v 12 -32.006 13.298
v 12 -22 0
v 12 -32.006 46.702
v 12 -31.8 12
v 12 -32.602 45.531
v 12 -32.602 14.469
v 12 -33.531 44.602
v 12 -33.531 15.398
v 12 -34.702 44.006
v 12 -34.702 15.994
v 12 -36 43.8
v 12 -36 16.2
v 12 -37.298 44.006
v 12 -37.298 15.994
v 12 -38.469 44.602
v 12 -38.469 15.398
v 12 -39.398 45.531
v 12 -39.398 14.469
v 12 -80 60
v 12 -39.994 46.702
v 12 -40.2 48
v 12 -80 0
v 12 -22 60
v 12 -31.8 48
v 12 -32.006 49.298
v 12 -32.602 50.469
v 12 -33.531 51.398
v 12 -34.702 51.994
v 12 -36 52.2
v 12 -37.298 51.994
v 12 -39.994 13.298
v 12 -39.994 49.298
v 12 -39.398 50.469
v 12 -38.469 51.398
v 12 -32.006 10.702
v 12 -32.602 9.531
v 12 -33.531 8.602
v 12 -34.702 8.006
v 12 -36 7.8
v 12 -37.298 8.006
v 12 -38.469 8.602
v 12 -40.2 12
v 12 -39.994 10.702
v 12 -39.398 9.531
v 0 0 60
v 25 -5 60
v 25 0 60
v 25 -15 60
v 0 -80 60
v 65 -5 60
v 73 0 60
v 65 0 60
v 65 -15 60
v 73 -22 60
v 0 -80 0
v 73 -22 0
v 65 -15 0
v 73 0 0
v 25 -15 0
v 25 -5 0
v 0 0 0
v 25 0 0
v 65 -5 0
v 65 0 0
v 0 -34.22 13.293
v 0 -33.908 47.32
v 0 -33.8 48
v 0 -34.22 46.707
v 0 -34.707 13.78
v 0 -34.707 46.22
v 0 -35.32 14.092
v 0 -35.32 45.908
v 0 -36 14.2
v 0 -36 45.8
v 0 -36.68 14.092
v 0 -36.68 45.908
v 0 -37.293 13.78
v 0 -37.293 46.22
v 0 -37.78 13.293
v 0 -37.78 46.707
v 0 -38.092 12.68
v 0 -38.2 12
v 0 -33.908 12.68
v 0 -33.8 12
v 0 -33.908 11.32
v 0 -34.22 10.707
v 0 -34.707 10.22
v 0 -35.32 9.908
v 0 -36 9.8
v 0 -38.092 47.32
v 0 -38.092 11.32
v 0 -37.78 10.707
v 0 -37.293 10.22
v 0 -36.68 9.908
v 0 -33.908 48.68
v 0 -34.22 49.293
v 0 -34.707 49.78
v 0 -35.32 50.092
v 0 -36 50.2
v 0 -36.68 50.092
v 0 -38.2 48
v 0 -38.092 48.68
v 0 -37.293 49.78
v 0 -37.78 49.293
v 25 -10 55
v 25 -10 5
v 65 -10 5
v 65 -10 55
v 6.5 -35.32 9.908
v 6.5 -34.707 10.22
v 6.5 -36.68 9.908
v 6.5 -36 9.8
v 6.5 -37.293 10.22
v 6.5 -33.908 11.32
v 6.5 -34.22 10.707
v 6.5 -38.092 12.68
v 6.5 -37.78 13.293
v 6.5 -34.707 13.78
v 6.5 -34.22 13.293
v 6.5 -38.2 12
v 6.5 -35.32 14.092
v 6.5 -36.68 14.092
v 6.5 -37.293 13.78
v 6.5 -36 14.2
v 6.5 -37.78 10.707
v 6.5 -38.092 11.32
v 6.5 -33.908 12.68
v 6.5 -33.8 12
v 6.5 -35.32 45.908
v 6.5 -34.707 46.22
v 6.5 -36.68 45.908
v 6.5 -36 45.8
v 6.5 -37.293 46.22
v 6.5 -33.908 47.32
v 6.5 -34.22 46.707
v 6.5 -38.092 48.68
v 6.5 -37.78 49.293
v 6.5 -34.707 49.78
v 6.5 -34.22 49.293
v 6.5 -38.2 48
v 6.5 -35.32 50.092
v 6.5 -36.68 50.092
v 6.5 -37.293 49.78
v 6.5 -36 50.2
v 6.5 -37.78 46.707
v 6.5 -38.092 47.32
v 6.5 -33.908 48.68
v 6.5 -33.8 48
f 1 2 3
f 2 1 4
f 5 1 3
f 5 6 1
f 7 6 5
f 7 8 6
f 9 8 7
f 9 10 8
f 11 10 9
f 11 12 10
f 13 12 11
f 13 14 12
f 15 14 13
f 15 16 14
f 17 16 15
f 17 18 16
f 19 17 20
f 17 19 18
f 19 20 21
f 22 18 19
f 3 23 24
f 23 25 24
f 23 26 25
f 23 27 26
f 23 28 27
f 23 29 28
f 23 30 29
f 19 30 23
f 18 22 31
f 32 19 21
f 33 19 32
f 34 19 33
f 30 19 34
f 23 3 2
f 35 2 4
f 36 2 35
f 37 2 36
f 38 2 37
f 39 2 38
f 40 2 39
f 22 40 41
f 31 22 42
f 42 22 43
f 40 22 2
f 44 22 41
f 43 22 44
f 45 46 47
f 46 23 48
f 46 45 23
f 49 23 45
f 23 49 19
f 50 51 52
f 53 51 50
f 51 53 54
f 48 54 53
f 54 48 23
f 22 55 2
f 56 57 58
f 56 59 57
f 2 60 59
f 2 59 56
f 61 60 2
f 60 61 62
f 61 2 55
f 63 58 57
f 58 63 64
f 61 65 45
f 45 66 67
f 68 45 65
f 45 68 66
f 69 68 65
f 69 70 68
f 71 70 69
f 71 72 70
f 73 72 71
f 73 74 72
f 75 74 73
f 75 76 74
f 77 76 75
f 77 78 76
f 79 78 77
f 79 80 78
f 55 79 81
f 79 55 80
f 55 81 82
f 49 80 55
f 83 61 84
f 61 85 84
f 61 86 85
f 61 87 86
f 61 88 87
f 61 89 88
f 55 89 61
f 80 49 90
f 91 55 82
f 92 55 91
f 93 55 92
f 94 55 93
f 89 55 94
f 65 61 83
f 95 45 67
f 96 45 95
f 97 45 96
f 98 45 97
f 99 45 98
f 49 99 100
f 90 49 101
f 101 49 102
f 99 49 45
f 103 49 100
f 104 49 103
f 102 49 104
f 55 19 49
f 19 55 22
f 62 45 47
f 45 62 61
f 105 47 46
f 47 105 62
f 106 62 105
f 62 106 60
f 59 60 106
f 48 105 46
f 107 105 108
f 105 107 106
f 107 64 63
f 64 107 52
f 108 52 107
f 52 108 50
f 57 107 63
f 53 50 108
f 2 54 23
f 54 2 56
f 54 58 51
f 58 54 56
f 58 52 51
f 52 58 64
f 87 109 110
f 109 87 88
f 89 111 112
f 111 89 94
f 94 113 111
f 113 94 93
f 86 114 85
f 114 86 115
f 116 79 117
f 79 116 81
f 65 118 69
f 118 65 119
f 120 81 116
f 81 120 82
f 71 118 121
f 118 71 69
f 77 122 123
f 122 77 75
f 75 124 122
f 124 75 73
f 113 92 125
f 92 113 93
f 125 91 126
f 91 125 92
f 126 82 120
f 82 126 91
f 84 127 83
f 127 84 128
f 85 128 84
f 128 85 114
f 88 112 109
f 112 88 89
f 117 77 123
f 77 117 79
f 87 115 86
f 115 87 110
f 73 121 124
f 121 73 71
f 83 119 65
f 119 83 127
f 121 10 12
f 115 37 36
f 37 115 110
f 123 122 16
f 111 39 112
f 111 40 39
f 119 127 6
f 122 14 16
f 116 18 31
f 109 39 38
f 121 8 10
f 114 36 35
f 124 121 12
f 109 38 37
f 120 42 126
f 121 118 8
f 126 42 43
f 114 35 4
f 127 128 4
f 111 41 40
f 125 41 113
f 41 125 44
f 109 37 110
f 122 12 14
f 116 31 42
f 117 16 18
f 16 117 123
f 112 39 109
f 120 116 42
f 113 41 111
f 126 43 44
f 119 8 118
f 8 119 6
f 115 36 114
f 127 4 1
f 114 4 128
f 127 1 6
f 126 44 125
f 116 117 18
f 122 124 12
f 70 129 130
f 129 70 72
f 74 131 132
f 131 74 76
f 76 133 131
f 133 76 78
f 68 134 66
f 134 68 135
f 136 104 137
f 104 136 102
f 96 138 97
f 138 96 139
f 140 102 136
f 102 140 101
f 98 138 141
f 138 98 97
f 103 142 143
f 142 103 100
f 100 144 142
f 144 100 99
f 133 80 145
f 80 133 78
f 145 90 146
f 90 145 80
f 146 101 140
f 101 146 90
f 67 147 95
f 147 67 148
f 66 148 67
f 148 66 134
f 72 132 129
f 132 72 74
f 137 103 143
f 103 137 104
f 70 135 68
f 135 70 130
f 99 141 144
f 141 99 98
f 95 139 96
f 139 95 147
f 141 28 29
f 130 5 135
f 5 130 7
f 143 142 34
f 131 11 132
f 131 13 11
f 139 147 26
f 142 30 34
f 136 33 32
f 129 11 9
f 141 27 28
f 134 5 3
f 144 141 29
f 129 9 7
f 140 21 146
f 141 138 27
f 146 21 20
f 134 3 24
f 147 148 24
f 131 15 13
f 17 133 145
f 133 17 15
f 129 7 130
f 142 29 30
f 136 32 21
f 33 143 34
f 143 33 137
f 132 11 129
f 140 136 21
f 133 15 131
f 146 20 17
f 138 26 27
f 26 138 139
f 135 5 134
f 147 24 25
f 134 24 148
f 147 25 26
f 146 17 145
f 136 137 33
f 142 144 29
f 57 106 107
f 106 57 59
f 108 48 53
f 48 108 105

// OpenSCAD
ox = 25; // offset x dimension
px = 12; // mounting plate x dimension

sx = 40; // slot x
sb = 8; // slot blocker
sy = 12; //  slot y
soy = 10; // slot offset y


py = 80; // mounting plate y dimension

hz = 60; // height (z dimension)


module screw_hole(dl, ds, h) {
    // dl, ds: diameter large, small
    // h: diameter transition height
    large = 100;
    cylinder(h=large, d=dl, $fn=20);
    
    mirror([0,0,1]) union() {
        cylinder(h=large, d=ds, $fn=20);
        cylinder(h=h, d1=dl, d2=ds, $fn=20);
    }
}

module screw() {
    rotate([0,90,0]) screw_hole(h=5.5, ds=4.4, dl=8.4);
}

module fillet() {
    translate([ox,soy]) scale([1,5,5]) rotate([0,90,0]) cylinder(h=sx,r=1,$fn=4);
}

mirror([0,1,0]) difference() {
    union() {
        cube([px,py,hz]);
        translate([0,0,0]) cube([ox, soy, hz]);
        translate([0,soy,0]) cube([sx+ox, sy, hz]);
        translate([sx+ox,0,0]) cube([sb, soy+sy, hz]);
    }
    

    fillet();
    translate([0,0,hz]) fillet();
    
    dt = soy+sy; // deck thickness
    translate([px,dt+(py-dt)/2,hz/2]) for(yy=[-15], zz=[-18,18]) {
        translate([0,yy, zz]) screw();
    }
    

}
